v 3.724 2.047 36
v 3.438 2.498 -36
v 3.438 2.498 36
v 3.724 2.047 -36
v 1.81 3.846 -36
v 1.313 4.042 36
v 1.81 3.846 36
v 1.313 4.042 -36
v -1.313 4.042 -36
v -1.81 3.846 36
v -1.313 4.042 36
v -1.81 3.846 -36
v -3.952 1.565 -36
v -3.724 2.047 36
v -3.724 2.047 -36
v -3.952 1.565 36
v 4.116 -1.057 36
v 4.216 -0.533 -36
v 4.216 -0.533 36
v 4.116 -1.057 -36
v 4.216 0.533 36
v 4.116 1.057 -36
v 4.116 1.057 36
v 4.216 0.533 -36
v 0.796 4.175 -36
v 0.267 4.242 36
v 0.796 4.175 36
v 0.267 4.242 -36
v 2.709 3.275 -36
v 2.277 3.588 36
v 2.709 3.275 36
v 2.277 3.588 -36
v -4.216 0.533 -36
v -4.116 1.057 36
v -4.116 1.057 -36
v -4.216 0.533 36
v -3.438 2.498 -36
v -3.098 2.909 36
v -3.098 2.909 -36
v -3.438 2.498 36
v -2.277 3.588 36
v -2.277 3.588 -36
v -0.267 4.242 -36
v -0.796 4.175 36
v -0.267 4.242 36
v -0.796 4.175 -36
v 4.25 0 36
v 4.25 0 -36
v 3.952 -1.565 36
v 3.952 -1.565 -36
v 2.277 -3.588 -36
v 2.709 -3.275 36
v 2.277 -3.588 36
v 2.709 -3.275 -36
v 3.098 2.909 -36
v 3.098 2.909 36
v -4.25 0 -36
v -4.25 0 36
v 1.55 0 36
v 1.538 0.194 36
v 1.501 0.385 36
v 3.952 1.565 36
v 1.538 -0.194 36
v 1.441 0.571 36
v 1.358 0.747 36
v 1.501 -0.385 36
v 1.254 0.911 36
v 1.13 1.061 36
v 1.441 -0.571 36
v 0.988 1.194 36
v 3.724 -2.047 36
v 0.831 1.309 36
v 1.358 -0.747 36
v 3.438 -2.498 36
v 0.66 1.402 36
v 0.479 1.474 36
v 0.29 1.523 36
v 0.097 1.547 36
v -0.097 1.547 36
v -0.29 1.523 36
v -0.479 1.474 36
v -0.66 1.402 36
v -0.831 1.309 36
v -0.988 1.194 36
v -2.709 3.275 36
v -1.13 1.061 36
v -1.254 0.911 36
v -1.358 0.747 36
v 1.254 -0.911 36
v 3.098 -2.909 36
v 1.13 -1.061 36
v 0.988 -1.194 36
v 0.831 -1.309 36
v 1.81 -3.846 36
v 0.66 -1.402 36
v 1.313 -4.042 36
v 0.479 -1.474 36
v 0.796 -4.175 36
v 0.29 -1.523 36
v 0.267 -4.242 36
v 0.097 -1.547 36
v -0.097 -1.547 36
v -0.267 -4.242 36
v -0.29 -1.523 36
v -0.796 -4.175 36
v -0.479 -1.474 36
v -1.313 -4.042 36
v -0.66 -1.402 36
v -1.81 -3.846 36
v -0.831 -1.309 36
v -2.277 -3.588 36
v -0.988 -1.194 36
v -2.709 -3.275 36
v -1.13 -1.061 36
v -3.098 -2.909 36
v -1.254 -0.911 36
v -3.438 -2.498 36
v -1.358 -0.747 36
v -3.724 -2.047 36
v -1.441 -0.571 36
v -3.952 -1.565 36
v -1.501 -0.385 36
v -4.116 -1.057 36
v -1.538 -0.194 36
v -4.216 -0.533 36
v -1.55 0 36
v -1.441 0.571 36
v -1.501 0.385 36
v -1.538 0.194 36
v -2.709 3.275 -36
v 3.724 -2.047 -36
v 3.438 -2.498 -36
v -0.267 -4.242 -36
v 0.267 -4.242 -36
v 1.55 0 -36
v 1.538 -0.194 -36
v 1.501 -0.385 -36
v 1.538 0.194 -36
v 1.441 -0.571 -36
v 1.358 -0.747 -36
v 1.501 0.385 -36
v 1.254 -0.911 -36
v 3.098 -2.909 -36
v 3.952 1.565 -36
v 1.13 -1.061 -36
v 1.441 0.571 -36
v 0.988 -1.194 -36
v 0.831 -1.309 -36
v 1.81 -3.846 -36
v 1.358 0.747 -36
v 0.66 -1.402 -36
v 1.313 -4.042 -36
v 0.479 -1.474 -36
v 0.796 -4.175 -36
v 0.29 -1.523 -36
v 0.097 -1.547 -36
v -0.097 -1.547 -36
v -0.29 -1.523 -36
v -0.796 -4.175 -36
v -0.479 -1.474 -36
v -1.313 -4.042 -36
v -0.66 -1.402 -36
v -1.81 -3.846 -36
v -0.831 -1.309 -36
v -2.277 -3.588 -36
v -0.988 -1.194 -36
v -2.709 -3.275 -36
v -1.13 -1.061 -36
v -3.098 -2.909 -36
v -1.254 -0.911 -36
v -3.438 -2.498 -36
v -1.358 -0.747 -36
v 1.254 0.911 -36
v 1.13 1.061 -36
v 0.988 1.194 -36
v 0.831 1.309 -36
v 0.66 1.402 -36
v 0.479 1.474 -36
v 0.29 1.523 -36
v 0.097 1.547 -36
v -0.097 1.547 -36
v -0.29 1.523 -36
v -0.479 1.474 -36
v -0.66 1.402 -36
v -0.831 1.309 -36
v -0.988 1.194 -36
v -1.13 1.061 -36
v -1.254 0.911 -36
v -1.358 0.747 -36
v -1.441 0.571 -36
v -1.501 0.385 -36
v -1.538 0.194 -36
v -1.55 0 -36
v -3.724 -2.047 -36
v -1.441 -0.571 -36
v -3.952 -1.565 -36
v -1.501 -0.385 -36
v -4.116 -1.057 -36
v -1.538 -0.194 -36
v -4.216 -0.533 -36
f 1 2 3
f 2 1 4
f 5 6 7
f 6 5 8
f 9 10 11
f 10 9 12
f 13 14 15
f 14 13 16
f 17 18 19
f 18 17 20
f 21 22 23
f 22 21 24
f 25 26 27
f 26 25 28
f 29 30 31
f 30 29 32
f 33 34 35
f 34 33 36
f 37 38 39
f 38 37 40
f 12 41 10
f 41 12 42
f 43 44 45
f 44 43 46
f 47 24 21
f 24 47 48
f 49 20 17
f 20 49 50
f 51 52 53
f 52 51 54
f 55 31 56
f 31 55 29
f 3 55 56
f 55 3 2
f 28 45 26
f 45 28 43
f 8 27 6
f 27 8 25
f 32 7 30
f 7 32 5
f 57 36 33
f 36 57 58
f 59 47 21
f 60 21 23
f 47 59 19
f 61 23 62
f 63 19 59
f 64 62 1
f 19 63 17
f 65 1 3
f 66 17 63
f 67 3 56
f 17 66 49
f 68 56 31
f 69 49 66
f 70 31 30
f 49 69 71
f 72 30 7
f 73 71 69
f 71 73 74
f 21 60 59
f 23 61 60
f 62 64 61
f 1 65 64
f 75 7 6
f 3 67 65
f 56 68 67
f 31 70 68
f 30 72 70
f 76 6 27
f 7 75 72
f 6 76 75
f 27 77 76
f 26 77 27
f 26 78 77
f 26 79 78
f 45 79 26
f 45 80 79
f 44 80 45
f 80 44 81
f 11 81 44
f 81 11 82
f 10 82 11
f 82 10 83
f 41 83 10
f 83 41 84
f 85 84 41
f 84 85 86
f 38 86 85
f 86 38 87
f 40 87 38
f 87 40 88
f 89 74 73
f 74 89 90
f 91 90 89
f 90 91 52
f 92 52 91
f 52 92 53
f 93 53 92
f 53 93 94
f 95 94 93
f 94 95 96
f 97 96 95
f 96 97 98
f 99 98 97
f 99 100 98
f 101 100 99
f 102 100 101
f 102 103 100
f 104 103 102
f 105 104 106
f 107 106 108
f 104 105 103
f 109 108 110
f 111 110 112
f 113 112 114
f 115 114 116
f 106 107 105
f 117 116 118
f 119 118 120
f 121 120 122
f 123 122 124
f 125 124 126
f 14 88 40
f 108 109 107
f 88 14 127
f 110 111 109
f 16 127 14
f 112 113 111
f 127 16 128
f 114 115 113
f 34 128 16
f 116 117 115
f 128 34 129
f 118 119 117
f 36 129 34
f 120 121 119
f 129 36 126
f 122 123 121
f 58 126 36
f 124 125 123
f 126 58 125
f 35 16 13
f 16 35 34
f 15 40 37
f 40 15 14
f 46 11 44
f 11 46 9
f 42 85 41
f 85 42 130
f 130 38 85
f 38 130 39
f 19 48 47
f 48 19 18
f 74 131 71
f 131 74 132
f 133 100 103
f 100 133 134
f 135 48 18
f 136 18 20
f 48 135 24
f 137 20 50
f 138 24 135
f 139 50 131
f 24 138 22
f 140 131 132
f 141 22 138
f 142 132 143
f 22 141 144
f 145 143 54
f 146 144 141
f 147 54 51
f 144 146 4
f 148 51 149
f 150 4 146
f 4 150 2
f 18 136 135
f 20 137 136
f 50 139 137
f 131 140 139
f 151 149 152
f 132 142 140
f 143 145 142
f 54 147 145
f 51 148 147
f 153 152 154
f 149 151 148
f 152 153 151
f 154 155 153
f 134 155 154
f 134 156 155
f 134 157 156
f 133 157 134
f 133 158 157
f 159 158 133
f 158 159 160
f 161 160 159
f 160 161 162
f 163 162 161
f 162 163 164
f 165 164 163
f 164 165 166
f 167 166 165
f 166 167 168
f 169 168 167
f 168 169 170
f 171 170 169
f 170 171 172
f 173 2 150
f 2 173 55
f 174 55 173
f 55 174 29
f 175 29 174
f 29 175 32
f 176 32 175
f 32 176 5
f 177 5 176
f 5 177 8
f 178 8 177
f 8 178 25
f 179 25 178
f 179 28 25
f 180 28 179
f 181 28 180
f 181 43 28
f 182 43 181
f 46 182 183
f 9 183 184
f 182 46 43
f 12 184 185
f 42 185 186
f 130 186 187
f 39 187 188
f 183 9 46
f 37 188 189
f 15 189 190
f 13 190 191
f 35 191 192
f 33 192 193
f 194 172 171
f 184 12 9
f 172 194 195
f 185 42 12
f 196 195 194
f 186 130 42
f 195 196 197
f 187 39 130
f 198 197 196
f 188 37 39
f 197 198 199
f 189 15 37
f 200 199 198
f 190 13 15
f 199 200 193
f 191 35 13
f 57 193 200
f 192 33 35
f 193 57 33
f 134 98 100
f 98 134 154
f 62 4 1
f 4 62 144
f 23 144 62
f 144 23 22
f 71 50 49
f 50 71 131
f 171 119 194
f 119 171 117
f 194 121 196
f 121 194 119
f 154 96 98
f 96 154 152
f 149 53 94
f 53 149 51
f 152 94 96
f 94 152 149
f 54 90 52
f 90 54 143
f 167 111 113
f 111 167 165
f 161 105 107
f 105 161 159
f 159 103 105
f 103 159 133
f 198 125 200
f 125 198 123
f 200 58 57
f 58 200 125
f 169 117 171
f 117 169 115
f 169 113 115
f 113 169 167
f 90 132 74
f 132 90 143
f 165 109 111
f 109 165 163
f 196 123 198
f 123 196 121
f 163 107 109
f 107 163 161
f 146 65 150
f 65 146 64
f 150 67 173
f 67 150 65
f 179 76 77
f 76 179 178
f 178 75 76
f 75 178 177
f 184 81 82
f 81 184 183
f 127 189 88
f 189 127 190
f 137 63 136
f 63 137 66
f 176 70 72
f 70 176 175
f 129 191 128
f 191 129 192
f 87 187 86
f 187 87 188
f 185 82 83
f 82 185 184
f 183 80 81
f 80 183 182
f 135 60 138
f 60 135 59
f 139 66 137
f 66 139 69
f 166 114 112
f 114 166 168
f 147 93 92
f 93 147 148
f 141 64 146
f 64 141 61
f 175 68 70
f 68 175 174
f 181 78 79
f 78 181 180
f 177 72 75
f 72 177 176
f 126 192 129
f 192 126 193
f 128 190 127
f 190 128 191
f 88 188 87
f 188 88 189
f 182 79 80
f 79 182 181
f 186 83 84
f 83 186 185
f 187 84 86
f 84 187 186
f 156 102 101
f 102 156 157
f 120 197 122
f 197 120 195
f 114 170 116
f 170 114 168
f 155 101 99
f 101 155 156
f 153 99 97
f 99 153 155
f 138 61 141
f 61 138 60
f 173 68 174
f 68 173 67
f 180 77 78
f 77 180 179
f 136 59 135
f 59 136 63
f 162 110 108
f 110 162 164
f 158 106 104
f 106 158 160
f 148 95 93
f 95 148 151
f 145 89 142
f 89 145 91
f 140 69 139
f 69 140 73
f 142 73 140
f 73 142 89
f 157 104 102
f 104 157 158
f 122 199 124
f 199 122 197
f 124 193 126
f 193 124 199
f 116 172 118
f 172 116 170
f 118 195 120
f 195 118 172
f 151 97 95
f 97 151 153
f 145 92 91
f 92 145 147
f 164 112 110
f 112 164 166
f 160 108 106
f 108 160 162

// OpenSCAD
$fn = 50;


difference() {
	union() {
		translate(v = [0, 0, -36.0000000000]) {
			cylinder(h = 72, r = 4.2500000000);
		}
	}
	union() {
		translate(v = [0, 0, -100.0000000000]) {
			cylinder(h = 200, r = 1.5500000000);
		}
	}
}
